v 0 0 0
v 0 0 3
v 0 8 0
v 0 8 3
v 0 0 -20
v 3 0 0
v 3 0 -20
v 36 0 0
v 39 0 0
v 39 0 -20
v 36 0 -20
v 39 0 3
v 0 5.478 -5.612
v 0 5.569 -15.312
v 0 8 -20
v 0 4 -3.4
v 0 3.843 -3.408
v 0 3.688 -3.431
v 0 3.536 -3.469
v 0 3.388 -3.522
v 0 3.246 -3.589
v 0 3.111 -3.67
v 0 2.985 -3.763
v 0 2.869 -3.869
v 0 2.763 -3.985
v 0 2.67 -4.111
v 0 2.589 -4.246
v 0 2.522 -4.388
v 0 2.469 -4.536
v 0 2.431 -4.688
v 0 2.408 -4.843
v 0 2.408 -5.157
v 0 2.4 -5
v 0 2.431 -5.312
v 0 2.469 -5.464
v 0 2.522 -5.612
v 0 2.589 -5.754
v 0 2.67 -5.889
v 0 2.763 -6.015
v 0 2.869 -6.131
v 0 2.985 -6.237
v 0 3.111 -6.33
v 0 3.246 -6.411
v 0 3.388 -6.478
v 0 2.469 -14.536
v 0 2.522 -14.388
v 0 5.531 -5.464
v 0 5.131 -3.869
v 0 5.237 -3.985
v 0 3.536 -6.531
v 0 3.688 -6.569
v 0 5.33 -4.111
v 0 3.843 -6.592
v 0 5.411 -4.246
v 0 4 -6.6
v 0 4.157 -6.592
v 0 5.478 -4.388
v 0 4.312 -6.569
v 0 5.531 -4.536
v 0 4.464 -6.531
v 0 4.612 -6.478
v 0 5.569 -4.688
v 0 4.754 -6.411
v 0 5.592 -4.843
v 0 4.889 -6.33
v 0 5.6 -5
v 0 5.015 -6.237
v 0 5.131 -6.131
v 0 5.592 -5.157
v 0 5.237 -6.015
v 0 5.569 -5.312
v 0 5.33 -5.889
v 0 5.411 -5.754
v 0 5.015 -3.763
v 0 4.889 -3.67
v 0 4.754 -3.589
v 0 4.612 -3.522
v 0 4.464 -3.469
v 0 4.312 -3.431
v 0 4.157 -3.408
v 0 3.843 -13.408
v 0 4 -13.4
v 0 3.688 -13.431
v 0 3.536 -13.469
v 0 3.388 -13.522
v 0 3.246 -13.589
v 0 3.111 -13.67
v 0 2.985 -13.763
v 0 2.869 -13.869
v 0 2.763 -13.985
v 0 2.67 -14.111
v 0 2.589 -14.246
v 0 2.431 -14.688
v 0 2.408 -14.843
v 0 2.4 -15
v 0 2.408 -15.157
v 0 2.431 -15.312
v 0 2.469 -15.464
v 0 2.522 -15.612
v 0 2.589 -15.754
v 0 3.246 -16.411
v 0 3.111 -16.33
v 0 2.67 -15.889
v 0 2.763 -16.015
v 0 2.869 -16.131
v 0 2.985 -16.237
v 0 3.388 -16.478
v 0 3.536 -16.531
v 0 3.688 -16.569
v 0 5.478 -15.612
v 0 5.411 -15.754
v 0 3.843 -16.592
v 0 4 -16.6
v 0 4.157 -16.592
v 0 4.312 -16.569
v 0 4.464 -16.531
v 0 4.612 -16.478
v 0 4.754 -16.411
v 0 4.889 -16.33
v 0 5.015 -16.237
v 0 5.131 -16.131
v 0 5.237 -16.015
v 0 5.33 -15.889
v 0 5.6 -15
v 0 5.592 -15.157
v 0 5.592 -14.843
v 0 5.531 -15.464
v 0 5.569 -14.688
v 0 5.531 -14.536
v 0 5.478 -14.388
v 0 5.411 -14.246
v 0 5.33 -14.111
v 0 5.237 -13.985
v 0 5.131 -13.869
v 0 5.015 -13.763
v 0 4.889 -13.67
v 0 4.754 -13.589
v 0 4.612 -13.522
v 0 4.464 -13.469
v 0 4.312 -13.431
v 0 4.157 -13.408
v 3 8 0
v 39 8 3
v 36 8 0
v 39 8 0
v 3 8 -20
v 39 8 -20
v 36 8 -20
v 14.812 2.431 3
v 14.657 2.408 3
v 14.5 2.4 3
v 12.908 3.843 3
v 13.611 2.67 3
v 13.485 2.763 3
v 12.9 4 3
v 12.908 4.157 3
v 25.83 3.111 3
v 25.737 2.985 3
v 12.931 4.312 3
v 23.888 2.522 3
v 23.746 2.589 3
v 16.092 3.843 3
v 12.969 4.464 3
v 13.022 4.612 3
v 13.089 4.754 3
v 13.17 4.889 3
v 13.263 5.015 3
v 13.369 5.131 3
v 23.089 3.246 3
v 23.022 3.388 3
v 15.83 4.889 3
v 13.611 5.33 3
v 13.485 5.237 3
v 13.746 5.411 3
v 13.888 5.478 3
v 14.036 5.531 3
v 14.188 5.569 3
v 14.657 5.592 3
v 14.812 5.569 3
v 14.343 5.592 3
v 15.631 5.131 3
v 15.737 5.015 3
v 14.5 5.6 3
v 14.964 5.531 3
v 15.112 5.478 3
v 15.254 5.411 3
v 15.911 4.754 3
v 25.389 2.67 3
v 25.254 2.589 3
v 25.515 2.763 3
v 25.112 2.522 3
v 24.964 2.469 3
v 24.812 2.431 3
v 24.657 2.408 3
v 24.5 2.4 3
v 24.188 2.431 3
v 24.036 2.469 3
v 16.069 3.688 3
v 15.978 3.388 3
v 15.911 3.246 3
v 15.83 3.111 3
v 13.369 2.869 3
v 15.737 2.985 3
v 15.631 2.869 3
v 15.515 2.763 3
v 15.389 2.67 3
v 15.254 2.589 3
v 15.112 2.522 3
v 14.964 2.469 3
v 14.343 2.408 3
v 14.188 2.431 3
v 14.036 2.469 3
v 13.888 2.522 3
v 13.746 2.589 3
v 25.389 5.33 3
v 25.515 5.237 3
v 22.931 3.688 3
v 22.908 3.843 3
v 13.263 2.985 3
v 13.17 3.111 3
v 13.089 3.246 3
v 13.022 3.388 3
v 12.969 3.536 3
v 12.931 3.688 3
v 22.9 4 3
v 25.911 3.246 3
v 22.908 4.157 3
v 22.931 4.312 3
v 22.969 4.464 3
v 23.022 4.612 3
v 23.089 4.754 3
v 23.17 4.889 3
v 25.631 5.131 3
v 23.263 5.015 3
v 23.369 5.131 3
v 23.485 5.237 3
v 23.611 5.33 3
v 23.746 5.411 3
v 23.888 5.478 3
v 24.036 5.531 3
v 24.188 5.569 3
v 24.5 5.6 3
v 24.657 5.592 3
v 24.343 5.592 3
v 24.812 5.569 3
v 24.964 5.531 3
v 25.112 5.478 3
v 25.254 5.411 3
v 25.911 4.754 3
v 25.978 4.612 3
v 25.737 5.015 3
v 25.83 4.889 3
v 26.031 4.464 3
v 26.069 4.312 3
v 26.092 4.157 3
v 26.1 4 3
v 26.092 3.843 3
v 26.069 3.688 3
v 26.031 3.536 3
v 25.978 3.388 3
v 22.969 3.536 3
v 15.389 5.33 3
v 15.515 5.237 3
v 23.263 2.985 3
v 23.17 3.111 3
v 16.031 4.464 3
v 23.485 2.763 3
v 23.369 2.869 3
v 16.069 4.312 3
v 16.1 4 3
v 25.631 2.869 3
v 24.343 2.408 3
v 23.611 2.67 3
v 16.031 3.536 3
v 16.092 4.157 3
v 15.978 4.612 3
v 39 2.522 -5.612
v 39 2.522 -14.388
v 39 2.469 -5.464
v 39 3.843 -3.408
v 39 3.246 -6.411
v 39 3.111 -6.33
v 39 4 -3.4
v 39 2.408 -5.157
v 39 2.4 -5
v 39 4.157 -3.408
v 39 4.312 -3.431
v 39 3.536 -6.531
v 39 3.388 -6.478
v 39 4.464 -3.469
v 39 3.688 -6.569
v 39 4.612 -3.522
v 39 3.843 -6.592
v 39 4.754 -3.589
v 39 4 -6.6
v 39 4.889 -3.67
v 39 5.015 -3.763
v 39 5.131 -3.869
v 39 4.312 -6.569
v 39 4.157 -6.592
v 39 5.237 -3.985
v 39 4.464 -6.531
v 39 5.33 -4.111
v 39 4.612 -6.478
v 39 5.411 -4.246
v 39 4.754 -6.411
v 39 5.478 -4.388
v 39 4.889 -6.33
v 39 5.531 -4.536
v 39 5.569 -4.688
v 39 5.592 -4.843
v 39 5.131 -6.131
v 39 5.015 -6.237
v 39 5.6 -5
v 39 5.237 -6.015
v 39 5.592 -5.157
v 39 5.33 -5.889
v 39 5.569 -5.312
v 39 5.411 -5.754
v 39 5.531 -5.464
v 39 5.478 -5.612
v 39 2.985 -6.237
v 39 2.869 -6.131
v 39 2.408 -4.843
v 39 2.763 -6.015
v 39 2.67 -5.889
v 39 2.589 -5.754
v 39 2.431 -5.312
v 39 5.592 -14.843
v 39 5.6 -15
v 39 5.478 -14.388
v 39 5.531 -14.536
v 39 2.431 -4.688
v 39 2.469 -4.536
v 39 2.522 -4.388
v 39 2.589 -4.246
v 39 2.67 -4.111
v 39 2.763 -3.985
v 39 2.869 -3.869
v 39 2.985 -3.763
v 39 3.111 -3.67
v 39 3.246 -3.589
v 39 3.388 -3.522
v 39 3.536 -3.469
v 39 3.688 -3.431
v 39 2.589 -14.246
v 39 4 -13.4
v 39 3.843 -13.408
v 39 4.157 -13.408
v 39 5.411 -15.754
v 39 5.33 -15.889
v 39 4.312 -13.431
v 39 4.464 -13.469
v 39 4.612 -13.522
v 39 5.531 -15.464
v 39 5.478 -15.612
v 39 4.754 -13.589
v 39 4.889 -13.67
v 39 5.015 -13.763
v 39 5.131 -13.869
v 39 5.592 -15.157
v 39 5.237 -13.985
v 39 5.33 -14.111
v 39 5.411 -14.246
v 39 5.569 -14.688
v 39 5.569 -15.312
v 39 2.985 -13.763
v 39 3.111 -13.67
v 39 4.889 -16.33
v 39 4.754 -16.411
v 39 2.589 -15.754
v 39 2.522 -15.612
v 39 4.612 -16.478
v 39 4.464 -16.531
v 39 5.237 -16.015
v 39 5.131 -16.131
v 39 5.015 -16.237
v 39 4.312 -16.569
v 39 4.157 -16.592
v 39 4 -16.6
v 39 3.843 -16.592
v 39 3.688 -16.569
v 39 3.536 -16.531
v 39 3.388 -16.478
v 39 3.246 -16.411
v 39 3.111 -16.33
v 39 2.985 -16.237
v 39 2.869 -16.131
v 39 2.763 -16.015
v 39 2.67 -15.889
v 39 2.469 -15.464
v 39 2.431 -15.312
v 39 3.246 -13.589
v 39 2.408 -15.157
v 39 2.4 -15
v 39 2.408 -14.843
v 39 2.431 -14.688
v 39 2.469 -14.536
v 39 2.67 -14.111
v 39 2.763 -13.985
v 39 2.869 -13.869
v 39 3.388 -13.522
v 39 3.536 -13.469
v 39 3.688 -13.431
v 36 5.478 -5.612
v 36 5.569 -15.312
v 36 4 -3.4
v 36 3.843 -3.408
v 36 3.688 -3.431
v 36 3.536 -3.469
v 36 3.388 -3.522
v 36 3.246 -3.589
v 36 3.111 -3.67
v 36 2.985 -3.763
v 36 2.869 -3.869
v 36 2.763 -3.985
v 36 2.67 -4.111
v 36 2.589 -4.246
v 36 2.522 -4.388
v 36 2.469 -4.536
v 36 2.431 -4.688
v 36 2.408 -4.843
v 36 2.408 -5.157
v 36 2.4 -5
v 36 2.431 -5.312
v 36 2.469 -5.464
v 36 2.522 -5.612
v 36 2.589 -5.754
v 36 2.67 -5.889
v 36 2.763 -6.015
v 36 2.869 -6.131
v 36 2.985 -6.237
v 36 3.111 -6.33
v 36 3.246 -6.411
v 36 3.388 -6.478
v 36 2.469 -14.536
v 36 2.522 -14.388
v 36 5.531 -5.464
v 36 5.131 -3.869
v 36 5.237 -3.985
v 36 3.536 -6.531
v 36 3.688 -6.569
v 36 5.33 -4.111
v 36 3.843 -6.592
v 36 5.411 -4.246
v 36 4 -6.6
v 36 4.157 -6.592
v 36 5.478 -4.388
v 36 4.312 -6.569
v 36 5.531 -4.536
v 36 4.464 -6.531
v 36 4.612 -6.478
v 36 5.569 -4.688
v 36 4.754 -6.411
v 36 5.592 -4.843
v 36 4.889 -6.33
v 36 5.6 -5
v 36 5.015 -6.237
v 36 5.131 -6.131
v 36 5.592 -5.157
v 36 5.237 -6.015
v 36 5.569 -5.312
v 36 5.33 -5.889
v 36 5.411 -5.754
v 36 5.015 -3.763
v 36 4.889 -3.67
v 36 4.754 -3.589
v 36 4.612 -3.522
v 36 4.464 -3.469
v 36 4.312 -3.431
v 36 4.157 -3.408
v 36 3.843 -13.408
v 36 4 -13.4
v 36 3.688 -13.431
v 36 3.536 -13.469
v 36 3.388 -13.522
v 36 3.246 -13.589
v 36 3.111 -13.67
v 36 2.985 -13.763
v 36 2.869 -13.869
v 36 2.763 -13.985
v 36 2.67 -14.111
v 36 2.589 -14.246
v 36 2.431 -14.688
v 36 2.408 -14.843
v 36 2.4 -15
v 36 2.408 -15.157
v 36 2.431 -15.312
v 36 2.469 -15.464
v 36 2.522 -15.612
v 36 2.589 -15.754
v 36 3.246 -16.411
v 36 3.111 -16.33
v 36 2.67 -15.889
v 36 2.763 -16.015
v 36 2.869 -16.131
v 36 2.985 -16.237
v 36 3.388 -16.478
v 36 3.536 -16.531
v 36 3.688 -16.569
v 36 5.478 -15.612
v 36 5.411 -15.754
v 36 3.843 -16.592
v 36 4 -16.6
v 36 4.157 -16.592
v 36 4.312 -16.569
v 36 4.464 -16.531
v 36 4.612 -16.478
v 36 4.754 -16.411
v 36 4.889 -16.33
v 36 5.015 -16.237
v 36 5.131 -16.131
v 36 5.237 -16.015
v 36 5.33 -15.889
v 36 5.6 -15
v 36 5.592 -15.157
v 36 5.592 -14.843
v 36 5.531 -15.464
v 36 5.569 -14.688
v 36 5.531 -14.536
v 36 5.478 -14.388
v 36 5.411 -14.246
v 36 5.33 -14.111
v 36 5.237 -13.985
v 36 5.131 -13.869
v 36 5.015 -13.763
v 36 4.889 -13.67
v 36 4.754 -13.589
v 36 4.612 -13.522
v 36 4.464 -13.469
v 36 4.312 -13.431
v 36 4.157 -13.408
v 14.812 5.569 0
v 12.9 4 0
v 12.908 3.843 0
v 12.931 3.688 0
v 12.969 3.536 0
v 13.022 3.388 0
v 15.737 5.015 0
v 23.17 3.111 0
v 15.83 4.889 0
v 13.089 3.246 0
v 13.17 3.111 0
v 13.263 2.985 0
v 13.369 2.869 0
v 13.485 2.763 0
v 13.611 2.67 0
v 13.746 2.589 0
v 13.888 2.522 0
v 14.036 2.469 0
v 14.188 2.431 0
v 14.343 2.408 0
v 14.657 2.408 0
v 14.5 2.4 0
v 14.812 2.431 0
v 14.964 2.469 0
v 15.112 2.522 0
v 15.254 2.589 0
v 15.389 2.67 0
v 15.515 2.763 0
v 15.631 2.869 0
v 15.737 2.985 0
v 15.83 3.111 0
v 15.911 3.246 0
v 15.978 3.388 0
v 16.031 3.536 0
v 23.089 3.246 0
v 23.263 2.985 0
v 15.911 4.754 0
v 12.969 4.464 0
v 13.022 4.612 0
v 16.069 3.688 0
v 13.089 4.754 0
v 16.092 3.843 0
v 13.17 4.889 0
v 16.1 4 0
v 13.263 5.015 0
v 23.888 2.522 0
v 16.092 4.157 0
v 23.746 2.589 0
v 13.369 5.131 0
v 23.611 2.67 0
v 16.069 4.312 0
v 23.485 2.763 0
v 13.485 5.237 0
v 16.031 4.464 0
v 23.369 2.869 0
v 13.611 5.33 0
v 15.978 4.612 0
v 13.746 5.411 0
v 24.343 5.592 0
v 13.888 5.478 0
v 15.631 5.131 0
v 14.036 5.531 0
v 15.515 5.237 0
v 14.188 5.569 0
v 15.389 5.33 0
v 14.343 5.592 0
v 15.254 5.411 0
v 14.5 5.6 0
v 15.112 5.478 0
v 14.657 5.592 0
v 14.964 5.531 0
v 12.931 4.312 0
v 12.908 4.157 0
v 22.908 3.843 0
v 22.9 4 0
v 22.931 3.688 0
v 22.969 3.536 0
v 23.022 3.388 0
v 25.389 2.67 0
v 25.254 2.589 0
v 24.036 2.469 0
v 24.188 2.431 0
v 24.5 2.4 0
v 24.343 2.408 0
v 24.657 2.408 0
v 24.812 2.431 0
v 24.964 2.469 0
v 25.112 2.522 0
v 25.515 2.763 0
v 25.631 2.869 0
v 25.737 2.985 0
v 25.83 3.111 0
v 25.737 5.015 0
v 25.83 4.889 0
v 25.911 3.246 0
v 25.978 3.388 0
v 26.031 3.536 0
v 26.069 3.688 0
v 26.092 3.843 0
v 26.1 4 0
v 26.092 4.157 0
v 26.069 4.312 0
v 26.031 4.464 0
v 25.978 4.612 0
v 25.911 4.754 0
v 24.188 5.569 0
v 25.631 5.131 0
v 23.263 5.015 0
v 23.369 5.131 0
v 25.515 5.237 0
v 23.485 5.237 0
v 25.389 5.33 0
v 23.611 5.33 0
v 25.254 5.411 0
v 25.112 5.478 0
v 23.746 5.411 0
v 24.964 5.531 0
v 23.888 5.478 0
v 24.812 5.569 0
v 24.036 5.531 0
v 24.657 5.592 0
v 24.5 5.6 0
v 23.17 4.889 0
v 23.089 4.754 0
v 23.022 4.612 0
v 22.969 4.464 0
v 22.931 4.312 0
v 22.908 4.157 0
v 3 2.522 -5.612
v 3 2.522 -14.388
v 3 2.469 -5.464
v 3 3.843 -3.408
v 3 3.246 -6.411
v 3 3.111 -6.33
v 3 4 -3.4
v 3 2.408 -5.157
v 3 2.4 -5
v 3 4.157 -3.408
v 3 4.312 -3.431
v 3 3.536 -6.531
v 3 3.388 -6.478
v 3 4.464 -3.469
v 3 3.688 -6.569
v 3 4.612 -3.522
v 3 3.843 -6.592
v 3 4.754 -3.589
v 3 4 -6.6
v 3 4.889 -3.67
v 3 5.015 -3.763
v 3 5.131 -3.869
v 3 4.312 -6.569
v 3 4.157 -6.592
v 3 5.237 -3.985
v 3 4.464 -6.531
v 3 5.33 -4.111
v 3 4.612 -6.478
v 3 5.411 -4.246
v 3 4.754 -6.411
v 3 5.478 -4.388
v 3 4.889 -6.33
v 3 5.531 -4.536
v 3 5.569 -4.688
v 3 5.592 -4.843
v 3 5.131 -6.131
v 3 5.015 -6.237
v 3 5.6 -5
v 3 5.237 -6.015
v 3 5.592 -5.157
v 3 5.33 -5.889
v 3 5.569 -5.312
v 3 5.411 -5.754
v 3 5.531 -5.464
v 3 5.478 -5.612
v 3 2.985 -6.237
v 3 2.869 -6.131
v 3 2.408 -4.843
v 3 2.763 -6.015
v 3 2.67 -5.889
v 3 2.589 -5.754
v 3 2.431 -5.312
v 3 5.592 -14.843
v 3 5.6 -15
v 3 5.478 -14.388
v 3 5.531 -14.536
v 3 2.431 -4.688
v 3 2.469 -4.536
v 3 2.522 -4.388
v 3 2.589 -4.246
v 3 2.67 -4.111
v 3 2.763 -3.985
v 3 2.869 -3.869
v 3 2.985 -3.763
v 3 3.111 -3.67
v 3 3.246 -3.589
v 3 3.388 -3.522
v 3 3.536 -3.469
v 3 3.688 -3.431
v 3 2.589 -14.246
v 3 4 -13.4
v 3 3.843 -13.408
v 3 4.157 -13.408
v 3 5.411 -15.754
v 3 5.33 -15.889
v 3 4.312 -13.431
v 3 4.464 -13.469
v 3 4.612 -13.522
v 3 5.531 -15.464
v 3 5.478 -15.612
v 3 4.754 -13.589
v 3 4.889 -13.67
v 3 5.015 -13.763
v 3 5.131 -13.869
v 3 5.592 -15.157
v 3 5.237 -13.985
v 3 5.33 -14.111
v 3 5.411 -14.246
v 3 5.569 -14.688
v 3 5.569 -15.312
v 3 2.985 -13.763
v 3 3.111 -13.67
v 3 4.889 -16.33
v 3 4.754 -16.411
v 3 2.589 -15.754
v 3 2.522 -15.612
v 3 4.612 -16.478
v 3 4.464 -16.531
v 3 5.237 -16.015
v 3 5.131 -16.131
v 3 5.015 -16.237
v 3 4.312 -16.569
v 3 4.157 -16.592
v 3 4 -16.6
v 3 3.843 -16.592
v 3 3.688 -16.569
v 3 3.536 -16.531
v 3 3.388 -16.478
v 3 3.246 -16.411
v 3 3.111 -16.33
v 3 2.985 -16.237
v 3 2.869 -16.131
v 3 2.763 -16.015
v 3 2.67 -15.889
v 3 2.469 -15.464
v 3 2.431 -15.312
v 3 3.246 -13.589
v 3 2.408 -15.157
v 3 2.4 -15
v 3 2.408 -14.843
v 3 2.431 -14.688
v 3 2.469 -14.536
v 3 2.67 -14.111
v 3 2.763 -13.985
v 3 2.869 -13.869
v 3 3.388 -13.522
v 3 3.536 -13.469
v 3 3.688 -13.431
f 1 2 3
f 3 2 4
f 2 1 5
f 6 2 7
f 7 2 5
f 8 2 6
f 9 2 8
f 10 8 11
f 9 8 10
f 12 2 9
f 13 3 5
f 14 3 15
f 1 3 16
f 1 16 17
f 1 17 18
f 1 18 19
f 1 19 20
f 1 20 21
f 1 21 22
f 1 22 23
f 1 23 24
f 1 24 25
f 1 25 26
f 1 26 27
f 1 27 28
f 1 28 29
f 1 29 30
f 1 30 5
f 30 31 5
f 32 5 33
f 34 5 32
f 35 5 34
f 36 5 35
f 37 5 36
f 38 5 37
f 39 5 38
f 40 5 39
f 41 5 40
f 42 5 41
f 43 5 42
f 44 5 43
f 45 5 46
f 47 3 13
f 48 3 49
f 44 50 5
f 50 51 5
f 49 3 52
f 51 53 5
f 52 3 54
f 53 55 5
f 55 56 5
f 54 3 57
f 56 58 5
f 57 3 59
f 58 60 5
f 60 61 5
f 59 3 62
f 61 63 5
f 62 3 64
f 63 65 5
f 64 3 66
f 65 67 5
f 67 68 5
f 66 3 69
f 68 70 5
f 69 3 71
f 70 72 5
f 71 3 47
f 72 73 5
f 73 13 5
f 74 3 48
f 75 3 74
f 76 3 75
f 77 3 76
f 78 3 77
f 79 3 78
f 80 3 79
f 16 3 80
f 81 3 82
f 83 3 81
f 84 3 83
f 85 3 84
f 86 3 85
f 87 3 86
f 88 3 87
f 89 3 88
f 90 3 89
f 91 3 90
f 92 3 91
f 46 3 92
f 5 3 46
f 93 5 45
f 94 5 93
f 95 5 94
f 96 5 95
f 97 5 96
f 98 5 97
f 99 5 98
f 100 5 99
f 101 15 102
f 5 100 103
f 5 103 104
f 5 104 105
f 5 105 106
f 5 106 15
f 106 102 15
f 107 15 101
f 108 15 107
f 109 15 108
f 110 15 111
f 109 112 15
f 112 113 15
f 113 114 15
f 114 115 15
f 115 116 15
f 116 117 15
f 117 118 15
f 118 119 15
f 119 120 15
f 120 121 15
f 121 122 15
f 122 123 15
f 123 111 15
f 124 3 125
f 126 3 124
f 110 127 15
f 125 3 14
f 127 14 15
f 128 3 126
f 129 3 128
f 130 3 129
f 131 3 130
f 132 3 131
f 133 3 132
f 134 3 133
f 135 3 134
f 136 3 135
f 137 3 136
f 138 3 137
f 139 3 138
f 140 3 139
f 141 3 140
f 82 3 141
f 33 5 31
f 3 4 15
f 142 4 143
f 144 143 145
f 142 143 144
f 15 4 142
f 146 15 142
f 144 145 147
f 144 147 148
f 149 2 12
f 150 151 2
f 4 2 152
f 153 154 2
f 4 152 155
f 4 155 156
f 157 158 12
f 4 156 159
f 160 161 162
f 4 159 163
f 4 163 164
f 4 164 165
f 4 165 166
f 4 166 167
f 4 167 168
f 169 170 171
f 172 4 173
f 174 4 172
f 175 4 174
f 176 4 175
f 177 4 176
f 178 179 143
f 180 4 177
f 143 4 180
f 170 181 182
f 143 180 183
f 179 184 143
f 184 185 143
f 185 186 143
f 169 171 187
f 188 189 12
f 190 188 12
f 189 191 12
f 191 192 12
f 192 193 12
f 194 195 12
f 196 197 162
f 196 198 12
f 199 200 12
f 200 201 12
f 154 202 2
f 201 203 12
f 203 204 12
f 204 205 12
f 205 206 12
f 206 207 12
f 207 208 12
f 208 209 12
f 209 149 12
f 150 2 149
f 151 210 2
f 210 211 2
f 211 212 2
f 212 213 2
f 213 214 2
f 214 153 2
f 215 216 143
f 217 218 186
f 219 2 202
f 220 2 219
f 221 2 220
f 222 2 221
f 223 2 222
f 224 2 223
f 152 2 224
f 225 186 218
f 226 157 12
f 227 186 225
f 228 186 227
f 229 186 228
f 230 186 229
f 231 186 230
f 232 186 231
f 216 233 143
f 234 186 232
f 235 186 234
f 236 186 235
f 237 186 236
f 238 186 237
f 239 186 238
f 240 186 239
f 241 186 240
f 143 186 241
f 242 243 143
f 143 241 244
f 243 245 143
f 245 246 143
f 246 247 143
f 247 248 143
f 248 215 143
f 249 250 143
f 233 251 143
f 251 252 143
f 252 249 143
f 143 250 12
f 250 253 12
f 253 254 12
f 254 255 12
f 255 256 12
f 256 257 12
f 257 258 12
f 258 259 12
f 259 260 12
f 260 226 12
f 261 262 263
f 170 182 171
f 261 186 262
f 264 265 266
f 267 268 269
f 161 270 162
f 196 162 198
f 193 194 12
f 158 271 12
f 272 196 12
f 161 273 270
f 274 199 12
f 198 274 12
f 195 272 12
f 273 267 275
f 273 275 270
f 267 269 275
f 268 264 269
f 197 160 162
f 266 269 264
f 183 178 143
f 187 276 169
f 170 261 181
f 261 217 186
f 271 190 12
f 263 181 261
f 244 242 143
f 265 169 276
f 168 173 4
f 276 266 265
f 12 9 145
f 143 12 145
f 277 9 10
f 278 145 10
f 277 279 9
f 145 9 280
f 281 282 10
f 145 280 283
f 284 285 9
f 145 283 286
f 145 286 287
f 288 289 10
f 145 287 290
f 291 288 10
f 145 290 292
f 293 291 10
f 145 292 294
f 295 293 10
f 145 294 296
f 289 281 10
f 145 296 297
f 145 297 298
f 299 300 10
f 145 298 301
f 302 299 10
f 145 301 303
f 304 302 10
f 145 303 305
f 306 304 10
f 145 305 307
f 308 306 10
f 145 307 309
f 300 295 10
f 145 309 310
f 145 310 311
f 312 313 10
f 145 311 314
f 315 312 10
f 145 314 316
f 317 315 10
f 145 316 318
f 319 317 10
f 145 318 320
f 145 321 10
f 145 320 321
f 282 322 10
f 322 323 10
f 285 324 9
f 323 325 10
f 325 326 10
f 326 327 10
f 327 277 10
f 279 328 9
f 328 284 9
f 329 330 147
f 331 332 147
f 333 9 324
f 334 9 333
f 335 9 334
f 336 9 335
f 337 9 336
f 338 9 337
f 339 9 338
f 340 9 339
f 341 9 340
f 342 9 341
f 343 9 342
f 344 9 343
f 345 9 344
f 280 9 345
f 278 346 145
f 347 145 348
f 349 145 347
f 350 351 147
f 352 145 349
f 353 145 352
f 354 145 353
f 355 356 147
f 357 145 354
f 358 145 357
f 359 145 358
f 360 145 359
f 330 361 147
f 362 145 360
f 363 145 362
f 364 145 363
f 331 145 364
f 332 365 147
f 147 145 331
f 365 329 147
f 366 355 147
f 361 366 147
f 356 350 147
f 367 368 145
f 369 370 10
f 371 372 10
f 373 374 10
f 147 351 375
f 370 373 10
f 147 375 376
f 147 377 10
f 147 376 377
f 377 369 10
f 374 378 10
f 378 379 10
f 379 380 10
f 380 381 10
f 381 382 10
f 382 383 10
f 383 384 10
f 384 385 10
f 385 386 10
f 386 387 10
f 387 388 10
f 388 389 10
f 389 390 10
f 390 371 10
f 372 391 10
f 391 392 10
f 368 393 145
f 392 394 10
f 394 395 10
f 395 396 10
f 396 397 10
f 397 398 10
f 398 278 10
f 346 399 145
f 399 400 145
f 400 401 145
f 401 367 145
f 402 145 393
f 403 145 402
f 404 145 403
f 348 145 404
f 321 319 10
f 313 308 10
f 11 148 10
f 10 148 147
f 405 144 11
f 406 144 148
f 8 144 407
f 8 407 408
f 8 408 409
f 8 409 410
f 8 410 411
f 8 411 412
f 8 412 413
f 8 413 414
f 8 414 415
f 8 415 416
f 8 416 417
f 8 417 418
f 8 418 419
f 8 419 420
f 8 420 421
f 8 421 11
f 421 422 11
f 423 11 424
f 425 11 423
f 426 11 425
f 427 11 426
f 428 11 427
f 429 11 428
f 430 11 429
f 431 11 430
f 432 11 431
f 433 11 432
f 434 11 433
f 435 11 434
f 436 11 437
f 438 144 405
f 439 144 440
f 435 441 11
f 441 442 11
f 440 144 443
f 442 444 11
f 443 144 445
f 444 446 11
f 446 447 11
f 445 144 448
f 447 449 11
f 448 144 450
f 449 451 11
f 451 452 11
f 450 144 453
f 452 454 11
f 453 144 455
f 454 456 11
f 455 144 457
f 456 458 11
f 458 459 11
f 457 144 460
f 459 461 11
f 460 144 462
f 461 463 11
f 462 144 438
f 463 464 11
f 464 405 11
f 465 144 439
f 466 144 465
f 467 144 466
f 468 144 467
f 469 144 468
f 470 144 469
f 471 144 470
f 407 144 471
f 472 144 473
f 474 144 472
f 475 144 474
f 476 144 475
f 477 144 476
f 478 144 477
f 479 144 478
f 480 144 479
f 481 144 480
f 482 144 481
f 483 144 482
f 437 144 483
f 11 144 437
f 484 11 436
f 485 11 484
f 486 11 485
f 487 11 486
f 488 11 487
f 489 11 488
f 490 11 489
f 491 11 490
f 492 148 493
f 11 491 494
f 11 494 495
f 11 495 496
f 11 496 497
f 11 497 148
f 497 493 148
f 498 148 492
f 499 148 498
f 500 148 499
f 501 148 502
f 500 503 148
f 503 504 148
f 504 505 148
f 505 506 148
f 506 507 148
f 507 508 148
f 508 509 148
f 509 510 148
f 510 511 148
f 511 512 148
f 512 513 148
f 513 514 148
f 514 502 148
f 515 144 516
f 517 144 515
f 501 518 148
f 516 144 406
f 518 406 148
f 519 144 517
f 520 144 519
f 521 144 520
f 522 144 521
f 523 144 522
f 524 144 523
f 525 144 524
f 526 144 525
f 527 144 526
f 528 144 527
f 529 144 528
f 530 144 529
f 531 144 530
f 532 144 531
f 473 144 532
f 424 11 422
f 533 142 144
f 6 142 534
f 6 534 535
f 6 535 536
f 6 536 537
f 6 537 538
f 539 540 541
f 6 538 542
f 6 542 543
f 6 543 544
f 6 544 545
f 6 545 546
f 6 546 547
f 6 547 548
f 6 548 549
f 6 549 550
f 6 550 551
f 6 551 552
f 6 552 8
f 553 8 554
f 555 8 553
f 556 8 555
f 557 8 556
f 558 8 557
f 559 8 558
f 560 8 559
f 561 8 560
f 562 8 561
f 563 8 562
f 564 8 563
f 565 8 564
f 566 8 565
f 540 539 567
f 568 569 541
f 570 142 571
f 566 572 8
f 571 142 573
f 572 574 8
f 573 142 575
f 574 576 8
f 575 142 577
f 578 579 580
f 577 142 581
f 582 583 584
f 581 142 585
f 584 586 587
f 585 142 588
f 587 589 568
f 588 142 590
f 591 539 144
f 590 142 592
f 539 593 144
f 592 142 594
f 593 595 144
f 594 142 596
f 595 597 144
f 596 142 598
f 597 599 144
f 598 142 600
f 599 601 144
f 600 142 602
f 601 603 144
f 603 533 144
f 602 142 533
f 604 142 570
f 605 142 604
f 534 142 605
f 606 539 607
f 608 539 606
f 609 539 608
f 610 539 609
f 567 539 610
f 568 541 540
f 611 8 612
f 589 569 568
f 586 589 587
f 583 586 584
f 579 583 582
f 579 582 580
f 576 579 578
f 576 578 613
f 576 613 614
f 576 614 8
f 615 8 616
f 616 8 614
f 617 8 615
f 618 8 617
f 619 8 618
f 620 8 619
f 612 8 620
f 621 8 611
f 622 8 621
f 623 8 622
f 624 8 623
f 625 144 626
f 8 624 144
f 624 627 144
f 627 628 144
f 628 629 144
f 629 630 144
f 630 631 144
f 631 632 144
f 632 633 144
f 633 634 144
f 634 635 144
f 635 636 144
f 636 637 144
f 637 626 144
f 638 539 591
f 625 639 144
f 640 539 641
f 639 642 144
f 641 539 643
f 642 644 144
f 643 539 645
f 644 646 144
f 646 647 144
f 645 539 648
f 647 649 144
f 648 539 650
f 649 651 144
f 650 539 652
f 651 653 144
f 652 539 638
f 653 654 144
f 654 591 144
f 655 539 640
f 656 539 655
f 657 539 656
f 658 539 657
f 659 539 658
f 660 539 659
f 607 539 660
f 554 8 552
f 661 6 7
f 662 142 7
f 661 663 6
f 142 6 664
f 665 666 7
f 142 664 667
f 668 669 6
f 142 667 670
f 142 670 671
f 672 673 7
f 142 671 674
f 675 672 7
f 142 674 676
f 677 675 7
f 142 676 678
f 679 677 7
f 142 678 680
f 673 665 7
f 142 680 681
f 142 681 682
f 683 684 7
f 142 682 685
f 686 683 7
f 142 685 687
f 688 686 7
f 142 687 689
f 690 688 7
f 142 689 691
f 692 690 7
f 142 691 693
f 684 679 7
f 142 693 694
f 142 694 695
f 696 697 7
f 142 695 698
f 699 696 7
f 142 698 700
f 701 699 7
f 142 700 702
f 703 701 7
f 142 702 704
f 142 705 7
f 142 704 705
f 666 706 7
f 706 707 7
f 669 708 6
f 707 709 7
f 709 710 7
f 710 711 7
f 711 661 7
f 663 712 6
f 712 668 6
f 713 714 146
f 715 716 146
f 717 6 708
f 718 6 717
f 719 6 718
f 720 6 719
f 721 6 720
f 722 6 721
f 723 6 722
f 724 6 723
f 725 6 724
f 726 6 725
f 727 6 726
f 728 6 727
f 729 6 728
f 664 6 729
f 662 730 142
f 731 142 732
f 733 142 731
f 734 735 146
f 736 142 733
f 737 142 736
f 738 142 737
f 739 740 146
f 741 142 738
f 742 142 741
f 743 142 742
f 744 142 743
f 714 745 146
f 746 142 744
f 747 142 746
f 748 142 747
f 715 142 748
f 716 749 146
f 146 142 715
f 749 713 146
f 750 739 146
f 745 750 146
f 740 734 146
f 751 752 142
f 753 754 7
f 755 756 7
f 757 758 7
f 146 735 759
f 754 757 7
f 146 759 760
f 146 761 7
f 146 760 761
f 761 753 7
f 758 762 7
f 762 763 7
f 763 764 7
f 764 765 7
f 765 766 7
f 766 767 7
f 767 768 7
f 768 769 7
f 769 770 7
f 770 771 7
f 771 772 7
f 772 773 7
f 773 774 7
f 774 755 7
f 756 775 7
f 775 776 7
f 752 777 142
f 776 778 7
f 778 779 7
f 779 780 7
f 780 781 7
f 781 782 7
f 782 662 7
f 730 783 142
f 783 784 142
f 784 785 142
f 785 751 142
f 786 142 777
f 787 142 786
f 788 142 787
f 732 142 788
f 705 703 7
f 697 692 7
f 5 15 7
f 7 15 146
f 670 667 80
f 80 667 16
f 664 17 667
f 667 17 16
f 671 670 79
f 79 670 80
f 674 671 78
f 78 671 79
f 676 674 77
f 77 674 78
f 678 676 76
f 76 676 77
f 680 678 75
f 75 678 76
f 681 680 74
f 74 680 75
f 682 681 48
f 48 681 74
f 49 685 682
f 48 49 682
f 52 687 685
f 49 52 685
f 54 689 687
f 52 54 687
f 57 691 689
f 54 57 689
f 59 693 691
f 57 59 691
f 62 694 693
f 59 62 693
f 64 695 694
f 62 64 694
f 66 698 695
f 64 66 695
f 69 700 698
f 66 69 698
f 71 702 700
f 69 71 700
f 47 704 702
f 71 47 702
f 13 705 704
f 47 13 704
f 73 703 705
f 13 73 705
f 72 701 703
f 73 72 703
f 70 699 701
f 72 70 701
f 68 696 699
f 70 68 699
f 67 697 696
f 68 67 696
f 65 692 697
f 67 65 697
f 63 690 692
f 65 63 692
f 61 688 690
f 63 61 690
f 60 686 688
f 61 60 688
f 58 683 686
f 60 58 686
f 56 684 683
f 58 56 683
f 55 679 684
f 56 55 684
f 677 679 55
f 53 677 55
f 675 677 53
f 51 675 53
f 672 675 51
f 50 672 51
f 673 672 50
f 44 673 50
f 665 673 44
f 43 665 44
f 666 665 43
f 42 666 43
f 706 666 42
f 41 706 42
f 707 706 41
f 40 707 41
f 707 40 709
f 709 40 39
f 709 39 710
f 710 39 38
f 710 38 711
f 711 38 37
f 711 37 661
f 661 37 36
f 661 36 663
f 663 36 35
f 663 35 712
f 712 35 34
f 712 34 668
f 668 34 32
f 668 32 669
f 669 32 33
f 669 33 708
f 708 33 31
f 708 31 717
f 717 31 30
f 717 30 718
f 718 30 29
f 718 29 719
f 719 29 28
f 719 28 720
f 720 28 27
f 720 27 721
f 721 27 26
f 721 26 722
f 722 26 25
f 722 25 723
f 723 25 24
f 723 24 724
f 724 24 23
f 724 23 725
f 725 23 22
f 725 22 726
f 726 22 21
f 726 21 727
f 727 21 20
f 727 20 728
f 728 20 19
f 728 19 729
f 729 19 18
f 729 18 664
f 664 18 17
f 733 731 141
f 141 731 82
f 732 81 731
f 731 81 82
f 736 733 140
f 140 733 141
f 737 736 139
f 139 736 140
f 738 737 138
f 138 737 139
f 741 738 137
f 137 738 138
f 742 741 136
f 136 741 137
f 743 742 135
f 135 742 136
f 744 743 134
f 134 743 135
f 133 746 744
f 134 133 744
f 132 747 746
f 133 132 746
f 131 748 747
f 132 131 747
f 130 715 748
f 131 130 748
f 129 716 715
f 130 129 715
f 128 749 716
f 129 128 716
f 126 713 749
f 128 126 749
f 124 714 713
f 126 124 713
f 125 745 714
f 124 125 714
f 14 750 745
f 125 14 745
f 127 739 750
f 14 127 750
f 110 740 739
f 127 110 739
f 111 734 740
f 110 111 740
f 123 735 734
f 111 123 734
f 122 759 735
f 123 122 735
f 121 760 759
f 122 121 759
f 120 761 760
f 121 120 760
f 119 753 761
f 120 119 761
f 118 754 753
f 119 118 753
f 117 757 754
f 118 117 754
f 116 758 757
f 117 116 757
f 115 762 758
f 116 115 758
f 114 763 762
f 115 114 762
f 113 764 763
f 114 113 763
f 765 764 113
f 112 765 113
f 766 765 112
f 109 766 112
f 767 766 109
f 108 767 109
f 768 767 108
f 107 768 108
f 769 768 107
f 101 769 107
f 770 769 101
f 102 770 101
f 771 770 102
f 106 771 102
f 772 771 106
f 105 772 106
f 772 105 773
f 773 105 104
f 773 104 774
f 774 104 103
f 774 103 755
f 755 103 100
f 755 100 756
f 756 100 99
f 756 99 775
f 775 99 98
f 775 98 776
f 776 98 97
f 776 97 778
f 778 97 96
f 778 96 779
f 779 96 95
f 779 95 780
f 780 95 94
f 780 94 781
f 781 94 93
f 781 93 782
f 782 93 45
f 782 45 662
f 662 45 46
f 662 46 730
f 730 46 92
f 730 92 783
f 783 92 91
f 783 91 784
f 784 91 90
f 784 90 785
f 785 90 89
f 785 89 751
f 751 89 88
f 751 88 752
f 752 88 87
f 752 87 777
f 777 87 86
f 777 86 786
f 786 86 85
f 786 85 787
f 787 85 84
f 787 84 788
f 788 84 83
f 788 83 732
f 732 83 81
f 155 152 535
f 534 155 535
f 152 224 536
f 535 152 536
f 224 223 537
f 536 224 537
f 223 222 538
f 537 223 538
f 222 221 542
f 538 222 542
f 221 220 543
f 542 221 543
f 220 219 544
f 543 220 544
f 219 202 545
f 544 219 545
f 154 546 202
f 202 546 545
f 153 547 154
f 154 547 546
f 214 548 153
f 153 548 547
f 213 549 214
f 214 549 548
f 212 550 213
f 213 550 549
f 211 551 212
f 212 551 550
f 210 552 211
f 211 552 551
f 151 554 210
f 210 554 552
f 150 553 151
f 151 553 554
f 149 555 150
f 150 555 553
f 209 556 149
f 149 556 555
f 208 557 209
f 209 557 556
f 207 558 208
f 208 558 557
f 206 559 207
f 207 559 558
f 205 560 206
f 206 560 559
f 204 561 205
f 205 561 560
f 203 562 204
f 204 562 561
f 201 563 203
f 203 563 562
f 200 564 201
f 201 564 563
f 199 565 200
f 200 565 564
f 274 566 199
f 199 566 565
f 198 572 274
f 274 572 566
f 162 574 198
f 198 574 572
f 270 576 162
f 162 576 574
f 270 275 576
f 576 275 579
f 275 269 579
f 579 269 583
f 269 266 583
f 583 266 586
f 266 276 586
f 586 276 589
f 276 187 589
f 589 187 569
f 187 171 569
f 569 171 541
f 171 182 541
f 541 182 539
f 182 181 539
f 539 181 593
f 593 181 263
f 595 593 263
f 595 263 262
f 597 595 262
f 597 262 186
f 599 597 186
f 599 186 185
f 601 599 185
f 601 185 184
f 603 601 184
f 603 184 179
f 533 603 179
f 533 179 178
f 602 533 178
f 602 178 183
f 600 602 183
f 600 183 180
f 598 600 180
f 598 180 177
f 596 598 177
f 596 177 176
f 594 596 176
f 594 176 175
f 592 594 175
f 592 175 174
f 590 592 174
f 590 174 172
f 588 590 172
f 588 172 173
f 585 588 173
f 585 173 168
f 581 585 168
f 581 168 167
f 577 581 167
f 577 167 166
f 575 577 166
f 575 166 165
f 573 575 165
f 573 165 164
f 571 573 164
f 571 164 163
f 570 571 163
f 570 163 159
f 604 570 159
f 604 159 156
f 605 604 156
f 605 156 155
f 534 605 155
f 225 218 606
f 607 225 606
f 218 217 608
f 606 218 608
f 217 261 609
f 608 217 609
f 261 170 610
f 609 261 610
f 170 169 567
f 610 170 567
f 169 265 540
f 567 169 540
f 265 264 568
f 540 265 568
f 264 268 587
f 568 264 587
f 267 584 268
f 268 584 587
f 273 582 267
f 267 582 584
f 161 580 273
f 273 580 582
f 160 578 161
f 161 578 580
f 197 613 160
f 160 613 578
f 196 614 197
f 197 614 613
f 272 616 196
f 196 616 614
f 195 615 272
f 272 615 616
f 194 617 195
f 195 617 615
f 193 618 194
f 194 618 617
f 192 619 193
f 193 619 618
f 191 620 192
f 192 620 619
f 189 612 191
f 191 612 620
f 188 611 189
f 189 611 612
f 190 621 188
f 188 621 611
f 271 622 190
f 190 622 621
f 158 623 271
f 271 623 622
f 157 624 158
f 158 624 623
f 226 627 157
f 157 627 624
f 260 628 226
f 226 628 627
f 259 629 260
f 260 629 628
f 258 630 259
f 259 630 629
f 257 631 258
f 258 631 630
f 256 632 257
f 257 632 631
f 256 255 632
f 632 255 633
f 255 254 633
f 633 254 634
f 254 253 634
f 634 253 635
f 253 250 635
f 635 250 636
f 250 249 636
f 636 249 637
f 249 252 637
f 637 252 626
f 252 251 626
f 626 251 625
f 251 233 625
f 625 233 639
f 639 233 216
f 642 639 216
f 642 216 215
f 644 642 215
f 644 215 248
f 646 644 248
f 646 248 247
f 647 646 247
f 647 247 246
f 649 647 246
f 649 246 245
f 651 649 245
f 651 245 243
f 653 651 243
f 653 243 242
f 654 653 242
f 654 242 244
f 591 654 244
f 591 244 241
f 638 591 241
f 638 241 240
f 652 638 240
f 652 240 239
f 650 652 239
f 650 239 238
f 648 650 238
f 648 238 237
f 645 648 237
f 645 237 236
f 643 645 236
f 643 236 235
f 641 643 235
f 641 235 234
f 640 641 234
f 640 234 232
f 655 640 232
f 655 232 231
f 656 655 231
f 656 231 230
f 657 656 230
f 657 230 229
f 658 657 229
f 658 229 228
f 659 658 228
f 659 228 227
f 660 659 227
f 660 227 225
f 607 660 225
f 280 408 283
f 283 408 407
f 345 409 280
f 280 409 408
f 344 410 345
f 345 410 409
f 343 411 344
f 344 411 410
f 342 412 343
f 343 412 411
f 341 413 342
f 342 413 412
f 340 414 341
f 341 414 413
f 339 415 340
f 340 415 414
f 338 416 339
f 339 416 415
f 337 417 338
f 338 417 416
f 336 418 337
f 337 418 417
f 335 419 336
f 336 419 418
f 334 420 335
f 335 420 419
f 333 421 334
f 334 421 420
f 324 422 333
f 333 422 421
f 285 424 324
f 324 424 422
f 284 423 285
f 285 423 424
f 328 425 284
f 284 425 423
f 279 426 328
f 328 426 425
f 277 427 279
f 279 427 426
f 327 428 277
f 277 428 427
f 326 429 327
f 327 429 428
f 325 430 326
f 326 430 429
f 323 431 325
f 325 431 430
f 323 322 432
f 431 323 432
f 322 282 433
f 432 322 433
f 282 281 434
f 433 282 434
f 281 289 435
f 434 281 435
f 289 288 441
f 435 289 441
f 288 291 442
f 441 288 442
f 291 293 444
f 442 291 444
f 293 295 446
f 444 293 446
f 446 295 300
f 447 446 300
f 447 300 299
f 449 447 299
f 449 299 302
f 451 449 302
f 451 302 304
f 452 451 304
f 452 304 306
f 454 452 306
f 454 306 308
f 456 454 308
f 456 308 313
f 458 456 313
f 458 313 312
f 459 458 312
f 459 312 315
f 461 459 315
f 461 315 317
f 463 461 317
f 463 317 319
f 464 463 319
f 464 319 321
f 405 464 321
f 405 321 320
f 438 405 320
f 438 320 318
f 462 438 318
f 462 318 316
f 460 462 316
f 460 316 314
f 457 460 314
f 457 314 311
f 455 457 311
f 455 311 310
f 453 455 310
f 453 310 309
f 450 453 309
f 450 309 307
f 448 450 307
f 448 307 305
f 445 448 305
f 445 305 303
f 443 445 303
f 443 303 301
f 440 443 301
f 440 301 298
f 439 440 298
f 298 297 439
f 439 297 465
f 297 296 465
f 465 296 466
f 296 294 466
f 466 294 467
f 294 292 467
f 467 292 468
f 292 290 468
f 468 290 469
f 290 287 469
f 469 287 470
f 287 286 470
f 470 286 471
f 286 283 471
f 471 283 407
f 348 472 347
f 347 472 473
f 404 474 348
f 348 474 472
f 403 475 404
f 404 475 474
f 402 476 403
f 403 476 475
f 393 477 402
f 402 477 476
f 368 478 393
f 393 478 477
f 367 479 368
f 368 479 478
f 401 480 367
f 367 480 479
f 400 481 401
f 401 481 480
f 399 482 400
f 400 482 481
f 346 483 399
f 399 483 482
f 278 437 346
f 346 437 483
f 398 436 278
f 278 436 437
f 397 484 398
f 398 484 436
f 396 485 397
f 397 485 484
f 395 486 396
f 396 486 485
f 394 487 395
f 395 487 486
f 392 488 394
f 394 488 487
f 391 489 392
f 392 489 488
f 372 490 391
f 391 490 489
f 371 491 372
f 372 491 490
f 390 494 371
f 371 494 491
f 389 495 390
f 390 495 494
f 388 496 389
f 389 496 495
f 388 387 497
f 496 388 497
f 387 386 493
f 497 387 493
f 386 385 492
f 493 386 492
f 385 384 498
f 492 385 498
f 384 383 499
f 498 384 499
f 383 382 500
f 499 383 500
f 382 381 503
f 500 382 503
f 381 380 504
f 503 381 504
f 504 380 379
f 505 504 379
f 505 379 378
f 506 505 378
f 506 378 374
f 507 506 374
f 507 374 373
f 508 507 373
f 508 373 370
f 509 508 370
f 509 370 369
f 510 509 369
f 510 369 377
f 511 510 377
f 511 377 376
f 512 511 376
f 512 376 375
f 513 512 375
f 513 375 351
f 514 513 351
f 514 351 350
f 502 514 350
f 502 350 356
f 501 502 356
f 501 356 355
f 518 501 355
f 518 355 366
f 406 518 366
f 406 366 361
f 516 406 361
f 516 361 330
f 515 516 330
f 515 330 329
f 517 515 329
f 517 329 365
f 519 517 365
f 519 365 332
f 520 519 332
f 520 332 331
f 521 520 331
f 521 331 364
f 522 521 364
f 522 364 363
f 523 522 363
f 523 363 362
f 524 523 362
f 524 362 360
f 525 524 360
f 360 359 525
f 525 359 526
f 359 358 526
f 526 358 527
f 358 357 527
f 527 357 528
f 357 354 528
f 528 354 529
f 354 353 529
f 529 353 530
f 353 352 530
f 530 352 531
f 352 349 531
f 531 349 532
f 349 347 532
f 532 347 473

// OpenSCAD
// file: mg995.scad
srv995_alto_caja = 31;
srv995_alto_base_ini_ala = 27;
srv995_alto_base_fin_ala = 29.8;
srv995_alto_total_eje_circular = 46.2;
srv995_dist_tornillos_largo = 37;
srv995_dist_tornillos_ancho = 16.1;
srv995_dist_tornillo_ala = 9;
srv995_largo_base = 41.1;
srv995_largo_con_alas = 55;
srv995_largo_con_una_ala = 48.2;
srv995_ancho_base = 20.5;
srv995_ancho_alas = 7.15; 
srv995_largo_alas = 20.5; 
srv995_profundo_muesca_ala = 1.5;
srv995_ancho_muesca_ala = 1.8;
srv995_ancho_saliente_cilindro_eje = 7;
// file: tornillos_union.scad
dist_tornillos = 5; //Distancia entre los tornillos de enlace de piezas
torn_ancho = 1.6;
alto_capa = 3;


module tornillos_union4(centrox, centroy) {
		translate([centrox/2+dist_tornillos,centroy/2+dist_tornillos,0])
			cylinder(r=torn_ancho,h=alto_capa,$fn=64);
		translate([centrox/2-dist_tornillos,centroy/2+dist_tornillos,0])
			cylinder(r=torn_ancho,h=alto_capa,$fn=64);
		translate([centrox/2-dist_tornillos,centroy/2-dist_tornillos,0])
			cylinder(r=torn_ancho,h=alto_capa,$fn=64);
		translate([centrox/2+dist_tornillos,centroy/2-dist_tornillos,0])
			cylinder(r=torn_ancho,h=alto_capa,$fn=64);
}

module tornillo(x, y) {
		translate([x, y, 0])
			cylinder(r=torn_ancho,h=alto_capa,$fn=64);
}

module tornillos_asiento4(centrox, centroy) {
		translate([centrox/2+dist_tornillos,centroy/2+dist_tornillos,0])
			cylinder(r2=torn_ancho, r1=asiento_ancho,h=alto_asiento,$fn=64);
		translate([centrox/2-dist_tornillos,centroy/2+dist_tornillos,0])
			cylinder(r2=torn_ancho, r1=asiento_ancho,h=alto_asiento,$fn=64);
		translate([centrox/2-dist_tornillos,centroy/2-dist_tornillos,0])
			cylinder(r2=torn_ancho, r1=asiento_ancho,h=alto_asiento,$fn=64);
		translate([centrox/2+dist_tornillos,centroy/2-dist_tornillos,0])
			cylinder(r2=torn_ancho, r1=asiento_ancho,h=alto_asiento,$fn=64);
}

module tornillos_union2(centrox, centroy, orientacion) {
	if (orientacion == "h")
	{
		translate([centrox/2+dist_tornillos,centroy/2,0])
			cylinder(r=torn_ancho,h=alto_capa,$fn=64);
		translate([centrox/2-dist_tornillos,centroy/2,0])
			cylinder(r=torn_ancho,h=alto_capa,$fn=64);
	}
	else
	{
		translate([centrox/2,centroy/2-dist_tornillos,0])
			cylinder(r=torn_ancho,h=alto_capa,$fn=64);
		translate([centrox/2,centroy/2+dist_tornillos,0])
			cylinder(r=torn_ancho,h=alto_capa,$fn=64);
	}
}
// main file
include <tornillos_union.scad>
include <mg995.scad>

alto_capa = 3;
ancho_base = 8;
largo_base = 33;
alto_lado = 20;

difference() {
	cube([largo_base+2*alto_capa,ancho_base,alto_capa]);

	tornillos_union2(largo_base+2*alto_capa, ancho_base, "h");

}

rotate([0,90,0])
difference() {
	cube([alto_lado,ancho_base,alto_capa]);
	tornillos_union2(alto_lado, ancho_base, "h");
}

translate([33+alto_capa,0,0])
rotate([0,90,0])
difference() {
	cube([alto_lado,ancho_base,alto_capa]);
	tornillos_union2(alto_lado, ancho_base, "h");
}
